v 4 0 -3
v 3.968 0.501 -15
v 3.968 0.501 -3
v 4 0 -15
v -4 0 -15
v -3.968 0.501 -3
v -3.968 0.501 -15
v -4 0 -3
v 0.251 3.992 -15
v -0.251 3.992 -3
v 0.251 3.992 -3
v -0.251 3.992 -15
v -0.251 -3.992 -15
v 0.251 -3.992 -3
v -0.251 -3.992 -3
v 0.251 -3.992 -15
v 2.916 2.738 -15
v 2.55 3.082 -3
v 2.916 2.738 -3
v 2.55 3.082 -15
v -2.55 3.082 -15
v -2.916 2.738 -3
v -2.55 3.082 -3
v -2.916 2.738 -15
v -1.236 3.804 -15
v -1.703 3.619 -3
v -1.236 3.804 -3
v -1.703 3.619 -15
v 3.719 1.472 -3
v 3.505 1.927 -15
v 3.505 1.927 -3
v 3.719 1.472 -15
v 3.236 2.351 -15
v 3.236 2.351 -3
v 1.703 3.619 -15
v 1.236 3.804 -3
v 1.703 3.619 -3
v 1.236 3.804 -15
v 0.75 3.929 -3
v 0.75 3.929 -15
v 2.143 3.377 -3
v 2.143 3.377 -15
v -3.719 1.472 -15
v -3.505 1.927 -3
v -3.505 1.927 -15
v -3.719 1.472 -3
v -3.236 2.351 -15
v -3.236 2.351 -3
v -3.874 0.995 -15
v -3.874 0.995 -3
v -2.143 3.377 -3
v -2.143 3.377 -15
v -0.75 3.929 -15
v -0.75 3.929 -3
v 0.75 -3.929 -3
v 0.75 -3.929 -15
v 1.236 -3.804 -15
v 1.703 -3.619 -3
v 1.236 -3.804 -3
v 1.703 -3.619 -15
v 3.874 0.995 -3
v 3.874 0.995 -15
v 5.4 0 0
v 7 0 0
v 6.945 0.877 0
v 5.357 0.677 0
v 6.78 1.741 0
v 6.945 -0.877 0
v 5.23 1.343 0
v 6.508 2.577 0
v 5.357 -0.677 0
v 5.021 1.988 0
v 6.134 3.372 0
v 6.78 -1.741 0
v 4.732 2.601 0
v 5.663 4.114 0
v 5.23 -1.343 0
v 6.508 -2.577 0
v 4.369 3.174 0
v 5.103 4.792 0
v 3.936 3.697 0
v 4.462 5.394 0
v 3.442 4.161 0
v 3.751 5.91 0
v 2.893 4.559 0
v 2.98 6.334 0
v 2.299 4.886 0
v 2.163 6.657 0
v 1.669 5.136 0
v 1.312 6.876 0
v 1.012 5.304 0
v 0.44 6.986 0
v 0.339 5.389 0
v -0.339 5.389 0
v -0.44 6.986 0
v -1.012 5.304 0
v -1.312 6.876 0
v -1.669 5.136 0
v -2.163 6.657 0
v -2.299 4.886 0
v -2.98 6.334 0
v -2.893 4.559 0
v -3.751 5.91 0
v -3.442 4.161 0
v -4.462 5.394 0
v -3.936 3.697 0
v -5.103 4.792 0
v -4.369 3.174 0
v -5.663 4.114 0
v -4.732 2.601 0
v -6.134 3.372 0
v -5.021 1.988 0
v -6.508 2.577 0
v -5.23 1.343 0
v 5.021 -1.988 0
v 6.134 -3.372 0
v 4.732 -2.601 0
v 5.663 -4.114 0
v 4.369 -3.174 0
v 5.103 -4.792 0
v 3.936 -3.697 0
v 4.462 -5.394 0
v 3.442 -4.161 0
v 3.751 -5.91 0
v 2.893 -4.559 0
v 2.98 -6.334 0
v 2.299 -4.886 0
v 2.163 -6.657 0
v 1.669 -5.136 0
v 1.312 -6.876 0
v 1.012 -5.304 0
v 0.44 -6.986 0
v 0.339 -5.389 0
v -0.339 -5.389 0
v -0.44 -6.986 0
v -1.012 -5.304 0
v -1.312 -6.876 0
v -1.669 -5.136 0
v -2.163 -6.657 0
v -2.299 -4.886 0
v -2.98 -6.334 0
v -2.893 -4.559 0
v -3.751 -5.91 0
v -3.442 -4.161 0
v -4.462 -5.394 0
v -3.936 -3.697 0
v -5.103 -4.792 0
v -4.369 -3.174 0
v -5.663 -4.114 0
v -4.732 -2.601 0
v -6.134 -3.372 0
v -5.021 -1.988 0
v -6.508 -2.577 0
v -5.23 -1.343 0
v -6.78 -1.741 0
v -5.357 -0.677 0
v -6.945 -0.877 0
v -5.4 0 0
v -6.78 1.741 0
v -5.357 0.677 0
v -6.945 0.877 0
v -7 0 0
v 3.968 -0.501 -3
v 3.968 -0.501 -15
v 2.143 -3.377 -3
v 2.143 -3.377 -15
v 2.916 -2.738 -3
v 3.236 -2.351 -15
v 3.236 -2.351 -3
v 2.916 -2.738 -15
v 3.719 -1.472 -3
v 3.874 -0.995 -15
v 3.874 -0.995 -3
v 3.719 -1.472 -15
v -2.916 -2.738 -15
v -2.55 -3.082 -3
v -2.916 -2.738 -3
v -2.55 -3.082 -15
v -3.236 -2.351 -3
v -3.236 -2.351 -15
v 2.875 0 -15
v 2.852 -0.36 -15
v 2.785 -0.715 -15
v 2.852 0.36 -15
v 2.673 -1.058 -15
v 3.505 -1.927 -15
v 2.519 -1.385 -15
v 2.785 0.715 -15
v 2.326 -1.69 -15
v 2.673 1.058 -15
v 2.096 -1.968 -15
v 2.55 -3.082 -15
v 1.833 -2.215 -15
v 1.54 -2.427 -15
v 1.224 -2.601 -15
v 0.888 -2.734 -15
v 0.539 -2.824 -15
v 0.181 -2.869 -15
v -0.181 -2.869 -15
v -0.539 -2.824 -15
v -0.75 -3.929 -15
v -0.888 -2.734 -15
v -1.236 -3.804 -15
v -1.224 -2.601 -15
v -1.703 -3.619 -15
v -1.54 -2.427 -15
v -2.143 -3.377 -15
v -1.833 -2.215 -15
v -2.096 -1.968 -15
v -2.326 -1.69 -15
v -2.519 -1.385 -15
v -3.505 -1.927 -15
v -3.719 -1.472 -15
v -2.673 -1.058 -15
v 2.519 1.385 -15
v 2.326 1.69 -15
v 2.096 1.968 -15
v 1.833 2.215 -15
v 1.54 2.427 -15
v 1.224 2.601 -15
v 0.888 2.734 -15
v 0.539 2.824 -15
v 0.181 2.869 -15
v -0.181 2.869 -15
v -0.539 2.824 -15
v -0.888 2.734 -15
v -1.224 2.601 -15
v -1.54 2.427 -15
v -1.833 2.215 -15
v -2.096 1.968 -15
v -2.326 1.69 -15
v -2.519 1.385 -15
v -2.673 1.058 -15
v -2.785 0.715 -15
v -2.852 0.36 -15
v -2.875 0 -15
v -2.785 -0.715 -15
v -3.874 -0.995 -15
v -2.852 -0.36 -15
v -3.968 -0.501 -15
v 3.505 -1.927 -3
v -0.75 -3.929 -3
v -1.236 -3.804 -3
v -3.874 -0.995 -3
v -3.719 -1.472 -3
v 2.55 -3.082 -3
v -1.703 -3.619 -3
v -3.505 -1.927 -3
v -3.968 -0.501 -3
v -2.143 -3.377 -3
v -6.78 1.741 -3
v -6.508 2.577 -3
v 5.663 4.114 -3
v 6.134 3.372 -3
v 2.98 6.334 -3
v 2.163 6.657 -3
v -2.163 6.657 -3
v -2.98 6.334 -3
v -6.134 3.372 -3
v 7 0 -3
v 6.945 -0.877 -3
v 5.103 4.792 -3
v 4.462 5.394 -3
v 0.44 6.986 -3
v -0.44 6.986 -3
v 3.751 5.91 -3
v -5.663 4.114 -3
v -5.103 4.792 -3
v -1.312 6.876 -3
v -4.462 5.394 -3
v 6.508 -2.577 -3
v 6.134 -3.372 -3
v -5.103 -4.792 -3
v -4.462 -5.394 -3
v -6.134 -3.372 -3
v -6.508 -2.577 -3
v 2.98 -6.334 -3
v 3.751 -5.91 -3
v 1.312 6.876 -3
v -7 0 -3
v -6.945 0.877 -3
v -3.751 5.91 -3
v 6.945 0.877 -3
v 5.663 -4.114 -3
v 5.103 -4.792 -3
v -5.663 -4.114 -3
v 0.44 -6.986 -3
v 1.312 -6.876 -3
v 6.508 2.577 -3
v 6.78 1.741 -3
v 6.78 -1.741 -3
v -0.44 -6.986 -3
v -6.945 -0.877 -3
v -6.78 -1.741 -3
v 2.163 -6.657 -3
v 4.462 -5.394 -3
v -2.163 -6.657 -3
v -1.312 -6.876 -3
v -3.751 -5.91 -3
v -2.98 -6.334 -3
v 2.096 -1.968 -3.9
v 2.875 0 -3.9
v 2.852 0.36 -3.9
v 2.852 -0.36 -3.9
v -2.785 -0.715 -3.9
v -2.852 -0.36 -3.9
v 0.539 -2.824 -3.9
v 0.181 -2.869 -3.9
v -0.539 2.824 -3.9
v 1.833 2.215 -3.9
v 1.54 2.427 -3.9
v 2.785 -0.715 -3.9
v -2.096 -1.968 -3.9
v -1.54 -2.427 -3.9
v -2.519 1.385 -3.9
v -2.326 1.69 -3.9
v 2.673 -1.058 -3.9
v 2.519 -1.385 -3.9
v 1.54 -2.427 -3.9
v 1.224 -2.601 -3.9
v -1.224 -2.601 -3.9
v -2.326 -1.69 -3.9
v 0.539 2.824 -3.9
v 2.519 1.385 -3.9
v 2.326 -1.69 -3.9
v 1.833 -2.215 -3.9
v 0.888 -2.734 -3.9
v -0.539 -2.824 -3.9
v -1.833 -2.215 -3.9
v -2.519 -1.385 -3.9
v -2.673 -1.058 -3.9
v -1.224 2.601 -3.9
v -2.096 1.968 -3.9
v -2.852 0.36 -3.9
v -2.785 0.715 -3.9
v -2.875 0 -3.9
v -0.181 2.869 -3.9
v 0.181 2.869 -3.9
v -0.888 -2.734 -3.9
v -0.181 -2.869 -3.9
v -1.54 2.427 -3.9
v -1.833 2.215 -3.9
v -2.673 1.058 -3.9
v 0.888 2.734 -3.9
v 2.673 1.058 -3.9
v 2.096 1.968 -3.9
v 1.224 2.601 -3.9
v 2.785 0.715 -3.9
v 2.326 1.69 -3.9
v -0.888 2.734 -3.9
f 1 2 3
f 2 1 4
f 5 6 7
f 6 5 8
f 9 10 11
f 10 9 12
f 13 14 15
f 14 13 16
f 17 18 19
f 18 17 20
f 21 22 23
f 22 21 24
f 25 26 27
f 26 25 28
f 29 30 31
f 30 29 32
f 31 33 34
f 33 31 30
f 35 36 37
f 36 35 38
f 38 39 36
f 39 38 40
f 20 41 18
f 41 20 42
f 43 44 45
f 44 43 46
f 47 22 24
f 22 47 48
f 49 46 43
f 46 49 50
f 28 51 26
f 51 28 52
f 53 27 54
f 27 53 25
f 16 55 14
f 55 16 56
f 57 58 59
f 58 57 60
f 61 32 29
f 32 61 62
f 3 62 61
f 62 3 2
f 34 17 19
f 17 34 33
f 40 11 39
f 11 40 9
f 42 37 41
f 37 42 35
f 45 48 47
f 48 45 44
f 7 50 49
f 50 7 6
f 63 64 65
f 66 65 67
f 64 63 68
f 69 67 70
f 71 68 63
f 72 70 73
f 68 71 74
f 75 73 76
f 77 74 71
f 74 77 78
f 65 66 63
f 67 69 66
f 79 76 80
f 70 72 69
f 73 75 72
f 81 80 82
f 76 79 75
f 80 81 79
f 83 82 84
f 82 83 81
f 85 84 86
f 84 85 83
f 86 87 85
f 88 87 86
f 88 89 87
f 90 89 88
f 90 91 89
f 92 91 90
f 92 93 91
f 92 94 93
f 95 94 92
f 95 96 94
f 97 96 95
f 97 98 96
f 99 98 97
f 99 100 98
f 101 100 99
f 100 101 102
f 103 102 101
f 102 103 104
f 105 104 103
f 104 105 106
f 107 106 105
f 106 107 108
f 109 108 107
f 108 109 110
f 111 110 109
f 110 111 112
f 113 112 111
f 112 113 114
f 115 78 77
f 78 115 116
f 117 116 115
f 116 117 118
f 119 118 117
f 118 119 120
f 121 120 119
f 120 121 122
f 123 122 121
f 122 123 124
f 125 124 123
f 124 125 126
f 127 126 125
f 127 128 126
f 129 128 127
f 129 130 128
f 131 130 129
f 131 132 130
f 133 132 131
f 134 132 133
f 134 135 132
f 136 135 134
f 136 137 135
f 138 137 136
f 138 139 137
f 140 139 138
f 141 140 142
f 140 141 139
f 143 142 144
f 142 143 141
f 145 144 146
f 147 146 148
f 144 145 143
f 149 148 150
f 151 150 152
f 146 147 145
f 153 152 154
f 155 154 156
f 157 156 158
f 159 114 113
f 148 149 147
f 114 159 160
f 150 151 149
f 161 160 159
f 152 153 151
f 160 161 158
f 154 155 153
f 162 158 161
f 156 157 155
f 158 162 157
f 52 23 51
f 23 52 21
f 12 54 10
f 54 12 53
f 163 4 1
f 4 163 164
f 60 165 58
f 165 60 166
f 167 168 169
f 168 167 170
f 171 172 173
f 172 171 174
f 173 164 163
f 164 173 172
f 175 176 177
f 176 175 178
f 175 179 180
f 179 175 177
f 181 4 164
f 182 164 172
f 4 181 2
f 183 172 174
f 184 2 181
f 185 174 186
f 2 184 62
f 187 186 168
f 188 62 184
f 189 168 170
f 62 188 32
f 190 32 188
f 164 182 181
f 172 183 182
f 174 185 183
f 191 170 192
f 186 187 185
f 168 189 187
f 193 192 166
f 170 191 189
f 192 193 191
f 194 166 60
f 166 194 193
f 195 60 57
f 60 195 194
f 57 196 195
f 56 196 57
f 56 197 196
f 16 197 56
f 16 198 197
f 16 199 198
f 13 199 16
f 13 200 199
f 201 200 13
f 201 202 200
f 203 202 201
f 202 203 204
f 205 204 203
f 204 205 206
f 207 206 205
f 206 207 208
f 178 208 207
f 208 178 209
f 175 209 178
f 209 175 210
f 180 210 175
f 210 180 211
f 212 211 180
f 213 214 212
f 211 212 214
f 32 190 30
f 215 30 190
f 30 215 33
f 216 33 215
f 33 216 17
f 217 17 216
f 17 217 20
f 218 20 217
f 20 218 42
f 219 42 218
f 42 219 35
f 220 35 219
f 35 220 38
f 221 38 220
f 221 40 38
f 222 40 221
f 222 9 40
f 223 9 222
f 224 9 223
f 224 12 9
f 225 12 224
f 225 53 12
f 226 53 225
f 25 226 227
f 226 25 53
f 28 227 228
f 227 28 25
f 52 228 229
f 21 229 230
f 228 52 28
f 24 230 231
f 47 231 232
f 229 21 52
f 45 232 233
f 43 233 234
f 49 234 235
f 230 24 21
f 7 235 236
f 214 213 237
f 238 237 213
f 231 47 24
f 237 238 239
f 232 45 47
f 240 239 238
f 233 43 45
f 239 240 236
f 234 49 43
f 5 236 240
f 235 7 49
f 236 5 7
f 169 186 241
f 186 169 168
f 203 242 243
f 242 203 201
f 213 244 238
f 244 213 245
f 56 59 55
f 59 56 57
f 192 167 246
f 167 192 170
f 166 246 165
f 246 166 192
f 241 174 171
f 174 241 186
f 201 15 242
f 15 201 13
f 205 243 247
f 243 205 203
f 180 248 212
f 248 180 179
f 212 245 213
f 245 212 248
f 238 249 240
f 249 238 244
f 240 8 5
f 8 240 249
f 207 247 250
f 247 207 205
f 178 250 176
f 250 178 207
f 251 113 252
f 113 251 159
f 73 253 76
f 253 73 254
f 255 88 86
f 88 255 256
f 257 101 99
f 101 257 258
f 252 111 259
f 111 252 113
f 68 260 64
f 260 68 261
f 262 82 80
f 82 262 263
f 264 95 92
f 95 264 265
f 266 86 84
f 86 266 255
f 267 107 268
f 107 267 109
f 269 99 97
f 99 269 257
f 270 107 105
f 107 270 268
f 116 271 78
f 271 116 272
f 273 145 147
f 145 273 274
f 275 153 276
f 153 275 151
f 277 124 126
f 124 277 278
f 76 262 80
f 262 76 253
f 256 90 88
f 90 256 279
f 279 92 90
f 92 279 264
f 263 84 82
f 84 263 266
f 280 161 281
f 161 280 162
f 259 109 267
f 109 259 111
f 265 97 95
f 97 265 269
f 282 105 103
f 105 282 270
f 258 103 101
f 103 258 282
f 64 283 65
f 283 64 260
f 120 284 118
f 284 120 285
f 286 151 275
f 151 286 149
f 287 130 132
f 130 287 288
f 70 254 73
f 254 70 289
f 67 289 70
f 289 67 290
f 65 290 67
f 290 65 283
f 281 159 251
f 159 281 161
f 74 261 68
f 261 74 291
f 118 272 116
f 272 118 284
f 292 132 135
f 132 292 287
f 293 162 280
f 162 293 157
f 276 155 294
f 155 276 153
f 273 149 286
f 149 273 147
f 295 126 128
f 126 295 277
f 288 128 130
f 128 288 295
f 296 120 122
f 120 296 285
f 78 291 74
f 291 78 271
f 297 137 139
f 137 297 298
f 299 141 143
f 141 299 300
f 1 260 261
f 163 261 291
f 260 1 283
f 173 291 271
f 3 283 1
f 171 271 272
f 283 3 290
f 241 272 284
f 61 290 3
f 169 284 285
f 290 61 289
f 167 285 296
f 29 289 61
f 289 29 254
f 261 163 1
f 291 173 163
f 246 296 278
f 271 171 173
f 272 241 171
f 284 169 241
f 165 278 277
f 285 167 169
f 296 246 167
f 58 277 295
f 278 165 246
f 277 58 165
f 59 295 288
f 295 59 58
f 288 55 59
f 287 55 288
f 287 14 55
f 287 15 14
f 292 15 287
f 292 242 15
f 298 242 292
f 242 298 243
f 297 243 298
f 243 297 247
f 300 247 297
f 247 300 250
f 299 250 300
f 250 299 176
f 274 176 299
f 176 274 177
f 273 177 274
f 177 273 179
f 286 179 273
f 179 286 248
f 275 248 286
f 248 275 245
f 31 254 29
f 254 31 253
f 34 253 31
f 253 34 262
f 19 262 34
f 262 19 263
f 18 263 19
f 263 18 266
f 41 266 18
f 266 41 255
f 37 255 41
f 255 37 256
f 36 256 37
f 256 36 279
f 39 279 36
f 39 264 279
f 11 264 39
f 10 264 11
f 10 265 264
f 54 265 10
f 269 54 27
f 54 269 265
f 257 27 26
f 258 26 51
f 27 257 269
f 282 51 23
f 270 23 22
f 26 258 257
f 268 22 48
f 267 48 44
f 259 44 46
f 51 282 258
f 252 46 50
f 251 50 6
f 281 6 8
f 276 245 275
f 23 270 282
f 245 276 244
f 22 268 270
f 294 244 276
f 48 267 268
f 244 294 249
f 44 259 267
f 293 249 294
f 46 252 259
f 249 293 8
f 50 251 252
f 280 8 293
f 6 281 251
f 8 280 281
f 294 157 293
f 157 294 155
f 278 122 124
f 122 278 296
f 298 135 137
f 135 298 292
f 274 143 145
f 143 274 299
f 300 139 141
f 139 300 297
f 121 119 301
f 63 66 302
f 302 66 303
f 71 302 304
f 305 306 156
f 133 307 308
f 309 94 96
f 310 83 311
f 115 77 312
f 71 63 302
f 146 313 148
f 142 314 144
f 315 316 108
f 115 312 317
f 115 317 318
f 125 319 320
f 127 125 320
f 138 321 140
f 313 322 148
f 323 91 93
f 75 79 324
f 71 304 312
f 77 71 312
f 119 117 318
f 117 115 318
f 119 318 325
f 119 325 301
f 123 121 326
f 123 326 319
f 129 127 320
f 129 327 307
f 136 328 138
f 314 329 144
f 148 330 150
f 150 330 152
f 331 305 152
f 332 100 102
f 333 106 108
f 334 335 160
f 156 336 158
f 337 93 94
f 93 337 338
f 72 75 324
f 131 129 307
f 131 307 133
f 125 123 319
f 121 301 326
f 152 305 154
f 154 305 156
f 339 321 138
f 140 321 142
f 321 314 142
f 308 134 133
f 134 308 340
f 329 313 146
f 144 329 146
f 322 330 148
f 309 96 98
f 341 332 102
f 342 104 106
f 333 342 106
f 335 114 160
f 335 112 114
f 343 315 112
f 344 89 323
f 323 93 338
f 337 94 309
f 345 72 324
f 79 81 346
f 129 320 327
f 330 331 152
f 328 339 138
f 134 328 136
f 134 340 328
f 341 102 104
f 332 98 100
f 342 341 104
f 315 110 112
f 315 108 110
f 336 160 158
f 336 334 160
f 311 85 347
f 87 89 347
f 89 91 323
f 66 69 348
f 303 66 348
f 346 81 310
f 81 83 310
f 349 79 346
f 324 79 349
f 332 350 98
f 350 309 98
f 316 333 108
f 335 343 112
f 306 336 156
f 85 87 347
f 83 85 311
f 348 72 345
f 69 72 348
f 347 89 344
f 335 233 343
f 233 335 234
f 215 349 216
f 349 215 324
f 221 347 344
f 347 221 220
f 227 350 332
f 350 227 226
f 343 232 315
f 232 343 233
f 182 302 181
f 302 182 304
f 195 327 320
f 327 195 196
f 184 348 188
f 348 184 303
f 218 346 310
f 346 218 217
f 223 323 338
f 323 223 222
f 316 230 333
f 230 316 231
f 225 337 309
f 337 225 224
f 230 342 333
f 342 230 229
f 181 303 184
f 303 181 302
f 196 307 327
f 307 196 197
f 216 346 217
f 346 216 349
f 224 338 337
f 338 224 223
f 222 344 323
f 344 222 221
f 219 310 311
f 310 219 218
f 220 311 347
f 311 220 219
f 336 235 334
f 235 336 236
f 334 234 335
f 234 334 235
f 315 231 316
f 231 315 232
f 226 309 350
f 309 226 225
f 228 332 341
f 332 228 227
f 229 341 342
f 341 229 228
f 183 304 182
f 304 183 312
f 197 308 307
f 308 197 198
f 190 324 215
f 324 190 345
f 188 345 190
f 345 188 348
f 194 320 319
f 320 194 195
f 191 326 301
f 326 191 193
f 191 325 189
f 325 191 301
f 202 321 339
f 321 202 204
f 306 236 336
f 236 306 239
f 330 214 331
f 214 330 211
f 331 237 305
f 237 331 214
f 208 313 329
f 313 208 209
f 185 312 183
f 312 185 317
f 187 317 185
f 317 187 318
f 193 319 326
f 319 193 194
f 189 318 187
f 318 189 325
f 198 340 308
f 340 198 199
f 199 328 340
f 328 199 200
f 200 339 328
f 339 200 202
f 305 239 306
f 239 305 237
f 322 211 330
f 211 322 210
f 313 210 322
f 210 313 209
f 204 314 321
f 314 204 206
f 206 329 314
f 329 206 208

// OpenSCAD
$fn = 50;


difference() {
	union() {
		translate(v = [0, 0, -15.0000000000]) {
			cylinder(h = 15, r = 4.0000000000);
		}
		translate(v = [0, 0, -3.0000000000]) {
			cylinder(h = 3, r = 7.0000000000);
		}
	}
	union() {
		translate(v = [0, 0, 0]) {
			rotate(a = [0, 0, 0]) {
				difference() {
					union() {
						#translate(v = [0, 0, -15.0000000000]) {
							cylinder(h = 15, r = 2.6000000000);
						}
						#translate(v = [0, 0, -3.9000000000]) {
							cylinder(h = 3.9000000000, r = 4.0000000000, r1 = 2.8750000000, r2 = 5.4000000000);
						}
						#translate(v = [0, 0, -15.0000000000]) {
							cylinder(h = 15, r = 2.8750000000);
						}
						#translate(v = [0, 0, -15.0000000000]) {
							cylinder(h = 15, r = 2.6000000000);
						}
					}
					union();
				}
			}
		}
	}
}
